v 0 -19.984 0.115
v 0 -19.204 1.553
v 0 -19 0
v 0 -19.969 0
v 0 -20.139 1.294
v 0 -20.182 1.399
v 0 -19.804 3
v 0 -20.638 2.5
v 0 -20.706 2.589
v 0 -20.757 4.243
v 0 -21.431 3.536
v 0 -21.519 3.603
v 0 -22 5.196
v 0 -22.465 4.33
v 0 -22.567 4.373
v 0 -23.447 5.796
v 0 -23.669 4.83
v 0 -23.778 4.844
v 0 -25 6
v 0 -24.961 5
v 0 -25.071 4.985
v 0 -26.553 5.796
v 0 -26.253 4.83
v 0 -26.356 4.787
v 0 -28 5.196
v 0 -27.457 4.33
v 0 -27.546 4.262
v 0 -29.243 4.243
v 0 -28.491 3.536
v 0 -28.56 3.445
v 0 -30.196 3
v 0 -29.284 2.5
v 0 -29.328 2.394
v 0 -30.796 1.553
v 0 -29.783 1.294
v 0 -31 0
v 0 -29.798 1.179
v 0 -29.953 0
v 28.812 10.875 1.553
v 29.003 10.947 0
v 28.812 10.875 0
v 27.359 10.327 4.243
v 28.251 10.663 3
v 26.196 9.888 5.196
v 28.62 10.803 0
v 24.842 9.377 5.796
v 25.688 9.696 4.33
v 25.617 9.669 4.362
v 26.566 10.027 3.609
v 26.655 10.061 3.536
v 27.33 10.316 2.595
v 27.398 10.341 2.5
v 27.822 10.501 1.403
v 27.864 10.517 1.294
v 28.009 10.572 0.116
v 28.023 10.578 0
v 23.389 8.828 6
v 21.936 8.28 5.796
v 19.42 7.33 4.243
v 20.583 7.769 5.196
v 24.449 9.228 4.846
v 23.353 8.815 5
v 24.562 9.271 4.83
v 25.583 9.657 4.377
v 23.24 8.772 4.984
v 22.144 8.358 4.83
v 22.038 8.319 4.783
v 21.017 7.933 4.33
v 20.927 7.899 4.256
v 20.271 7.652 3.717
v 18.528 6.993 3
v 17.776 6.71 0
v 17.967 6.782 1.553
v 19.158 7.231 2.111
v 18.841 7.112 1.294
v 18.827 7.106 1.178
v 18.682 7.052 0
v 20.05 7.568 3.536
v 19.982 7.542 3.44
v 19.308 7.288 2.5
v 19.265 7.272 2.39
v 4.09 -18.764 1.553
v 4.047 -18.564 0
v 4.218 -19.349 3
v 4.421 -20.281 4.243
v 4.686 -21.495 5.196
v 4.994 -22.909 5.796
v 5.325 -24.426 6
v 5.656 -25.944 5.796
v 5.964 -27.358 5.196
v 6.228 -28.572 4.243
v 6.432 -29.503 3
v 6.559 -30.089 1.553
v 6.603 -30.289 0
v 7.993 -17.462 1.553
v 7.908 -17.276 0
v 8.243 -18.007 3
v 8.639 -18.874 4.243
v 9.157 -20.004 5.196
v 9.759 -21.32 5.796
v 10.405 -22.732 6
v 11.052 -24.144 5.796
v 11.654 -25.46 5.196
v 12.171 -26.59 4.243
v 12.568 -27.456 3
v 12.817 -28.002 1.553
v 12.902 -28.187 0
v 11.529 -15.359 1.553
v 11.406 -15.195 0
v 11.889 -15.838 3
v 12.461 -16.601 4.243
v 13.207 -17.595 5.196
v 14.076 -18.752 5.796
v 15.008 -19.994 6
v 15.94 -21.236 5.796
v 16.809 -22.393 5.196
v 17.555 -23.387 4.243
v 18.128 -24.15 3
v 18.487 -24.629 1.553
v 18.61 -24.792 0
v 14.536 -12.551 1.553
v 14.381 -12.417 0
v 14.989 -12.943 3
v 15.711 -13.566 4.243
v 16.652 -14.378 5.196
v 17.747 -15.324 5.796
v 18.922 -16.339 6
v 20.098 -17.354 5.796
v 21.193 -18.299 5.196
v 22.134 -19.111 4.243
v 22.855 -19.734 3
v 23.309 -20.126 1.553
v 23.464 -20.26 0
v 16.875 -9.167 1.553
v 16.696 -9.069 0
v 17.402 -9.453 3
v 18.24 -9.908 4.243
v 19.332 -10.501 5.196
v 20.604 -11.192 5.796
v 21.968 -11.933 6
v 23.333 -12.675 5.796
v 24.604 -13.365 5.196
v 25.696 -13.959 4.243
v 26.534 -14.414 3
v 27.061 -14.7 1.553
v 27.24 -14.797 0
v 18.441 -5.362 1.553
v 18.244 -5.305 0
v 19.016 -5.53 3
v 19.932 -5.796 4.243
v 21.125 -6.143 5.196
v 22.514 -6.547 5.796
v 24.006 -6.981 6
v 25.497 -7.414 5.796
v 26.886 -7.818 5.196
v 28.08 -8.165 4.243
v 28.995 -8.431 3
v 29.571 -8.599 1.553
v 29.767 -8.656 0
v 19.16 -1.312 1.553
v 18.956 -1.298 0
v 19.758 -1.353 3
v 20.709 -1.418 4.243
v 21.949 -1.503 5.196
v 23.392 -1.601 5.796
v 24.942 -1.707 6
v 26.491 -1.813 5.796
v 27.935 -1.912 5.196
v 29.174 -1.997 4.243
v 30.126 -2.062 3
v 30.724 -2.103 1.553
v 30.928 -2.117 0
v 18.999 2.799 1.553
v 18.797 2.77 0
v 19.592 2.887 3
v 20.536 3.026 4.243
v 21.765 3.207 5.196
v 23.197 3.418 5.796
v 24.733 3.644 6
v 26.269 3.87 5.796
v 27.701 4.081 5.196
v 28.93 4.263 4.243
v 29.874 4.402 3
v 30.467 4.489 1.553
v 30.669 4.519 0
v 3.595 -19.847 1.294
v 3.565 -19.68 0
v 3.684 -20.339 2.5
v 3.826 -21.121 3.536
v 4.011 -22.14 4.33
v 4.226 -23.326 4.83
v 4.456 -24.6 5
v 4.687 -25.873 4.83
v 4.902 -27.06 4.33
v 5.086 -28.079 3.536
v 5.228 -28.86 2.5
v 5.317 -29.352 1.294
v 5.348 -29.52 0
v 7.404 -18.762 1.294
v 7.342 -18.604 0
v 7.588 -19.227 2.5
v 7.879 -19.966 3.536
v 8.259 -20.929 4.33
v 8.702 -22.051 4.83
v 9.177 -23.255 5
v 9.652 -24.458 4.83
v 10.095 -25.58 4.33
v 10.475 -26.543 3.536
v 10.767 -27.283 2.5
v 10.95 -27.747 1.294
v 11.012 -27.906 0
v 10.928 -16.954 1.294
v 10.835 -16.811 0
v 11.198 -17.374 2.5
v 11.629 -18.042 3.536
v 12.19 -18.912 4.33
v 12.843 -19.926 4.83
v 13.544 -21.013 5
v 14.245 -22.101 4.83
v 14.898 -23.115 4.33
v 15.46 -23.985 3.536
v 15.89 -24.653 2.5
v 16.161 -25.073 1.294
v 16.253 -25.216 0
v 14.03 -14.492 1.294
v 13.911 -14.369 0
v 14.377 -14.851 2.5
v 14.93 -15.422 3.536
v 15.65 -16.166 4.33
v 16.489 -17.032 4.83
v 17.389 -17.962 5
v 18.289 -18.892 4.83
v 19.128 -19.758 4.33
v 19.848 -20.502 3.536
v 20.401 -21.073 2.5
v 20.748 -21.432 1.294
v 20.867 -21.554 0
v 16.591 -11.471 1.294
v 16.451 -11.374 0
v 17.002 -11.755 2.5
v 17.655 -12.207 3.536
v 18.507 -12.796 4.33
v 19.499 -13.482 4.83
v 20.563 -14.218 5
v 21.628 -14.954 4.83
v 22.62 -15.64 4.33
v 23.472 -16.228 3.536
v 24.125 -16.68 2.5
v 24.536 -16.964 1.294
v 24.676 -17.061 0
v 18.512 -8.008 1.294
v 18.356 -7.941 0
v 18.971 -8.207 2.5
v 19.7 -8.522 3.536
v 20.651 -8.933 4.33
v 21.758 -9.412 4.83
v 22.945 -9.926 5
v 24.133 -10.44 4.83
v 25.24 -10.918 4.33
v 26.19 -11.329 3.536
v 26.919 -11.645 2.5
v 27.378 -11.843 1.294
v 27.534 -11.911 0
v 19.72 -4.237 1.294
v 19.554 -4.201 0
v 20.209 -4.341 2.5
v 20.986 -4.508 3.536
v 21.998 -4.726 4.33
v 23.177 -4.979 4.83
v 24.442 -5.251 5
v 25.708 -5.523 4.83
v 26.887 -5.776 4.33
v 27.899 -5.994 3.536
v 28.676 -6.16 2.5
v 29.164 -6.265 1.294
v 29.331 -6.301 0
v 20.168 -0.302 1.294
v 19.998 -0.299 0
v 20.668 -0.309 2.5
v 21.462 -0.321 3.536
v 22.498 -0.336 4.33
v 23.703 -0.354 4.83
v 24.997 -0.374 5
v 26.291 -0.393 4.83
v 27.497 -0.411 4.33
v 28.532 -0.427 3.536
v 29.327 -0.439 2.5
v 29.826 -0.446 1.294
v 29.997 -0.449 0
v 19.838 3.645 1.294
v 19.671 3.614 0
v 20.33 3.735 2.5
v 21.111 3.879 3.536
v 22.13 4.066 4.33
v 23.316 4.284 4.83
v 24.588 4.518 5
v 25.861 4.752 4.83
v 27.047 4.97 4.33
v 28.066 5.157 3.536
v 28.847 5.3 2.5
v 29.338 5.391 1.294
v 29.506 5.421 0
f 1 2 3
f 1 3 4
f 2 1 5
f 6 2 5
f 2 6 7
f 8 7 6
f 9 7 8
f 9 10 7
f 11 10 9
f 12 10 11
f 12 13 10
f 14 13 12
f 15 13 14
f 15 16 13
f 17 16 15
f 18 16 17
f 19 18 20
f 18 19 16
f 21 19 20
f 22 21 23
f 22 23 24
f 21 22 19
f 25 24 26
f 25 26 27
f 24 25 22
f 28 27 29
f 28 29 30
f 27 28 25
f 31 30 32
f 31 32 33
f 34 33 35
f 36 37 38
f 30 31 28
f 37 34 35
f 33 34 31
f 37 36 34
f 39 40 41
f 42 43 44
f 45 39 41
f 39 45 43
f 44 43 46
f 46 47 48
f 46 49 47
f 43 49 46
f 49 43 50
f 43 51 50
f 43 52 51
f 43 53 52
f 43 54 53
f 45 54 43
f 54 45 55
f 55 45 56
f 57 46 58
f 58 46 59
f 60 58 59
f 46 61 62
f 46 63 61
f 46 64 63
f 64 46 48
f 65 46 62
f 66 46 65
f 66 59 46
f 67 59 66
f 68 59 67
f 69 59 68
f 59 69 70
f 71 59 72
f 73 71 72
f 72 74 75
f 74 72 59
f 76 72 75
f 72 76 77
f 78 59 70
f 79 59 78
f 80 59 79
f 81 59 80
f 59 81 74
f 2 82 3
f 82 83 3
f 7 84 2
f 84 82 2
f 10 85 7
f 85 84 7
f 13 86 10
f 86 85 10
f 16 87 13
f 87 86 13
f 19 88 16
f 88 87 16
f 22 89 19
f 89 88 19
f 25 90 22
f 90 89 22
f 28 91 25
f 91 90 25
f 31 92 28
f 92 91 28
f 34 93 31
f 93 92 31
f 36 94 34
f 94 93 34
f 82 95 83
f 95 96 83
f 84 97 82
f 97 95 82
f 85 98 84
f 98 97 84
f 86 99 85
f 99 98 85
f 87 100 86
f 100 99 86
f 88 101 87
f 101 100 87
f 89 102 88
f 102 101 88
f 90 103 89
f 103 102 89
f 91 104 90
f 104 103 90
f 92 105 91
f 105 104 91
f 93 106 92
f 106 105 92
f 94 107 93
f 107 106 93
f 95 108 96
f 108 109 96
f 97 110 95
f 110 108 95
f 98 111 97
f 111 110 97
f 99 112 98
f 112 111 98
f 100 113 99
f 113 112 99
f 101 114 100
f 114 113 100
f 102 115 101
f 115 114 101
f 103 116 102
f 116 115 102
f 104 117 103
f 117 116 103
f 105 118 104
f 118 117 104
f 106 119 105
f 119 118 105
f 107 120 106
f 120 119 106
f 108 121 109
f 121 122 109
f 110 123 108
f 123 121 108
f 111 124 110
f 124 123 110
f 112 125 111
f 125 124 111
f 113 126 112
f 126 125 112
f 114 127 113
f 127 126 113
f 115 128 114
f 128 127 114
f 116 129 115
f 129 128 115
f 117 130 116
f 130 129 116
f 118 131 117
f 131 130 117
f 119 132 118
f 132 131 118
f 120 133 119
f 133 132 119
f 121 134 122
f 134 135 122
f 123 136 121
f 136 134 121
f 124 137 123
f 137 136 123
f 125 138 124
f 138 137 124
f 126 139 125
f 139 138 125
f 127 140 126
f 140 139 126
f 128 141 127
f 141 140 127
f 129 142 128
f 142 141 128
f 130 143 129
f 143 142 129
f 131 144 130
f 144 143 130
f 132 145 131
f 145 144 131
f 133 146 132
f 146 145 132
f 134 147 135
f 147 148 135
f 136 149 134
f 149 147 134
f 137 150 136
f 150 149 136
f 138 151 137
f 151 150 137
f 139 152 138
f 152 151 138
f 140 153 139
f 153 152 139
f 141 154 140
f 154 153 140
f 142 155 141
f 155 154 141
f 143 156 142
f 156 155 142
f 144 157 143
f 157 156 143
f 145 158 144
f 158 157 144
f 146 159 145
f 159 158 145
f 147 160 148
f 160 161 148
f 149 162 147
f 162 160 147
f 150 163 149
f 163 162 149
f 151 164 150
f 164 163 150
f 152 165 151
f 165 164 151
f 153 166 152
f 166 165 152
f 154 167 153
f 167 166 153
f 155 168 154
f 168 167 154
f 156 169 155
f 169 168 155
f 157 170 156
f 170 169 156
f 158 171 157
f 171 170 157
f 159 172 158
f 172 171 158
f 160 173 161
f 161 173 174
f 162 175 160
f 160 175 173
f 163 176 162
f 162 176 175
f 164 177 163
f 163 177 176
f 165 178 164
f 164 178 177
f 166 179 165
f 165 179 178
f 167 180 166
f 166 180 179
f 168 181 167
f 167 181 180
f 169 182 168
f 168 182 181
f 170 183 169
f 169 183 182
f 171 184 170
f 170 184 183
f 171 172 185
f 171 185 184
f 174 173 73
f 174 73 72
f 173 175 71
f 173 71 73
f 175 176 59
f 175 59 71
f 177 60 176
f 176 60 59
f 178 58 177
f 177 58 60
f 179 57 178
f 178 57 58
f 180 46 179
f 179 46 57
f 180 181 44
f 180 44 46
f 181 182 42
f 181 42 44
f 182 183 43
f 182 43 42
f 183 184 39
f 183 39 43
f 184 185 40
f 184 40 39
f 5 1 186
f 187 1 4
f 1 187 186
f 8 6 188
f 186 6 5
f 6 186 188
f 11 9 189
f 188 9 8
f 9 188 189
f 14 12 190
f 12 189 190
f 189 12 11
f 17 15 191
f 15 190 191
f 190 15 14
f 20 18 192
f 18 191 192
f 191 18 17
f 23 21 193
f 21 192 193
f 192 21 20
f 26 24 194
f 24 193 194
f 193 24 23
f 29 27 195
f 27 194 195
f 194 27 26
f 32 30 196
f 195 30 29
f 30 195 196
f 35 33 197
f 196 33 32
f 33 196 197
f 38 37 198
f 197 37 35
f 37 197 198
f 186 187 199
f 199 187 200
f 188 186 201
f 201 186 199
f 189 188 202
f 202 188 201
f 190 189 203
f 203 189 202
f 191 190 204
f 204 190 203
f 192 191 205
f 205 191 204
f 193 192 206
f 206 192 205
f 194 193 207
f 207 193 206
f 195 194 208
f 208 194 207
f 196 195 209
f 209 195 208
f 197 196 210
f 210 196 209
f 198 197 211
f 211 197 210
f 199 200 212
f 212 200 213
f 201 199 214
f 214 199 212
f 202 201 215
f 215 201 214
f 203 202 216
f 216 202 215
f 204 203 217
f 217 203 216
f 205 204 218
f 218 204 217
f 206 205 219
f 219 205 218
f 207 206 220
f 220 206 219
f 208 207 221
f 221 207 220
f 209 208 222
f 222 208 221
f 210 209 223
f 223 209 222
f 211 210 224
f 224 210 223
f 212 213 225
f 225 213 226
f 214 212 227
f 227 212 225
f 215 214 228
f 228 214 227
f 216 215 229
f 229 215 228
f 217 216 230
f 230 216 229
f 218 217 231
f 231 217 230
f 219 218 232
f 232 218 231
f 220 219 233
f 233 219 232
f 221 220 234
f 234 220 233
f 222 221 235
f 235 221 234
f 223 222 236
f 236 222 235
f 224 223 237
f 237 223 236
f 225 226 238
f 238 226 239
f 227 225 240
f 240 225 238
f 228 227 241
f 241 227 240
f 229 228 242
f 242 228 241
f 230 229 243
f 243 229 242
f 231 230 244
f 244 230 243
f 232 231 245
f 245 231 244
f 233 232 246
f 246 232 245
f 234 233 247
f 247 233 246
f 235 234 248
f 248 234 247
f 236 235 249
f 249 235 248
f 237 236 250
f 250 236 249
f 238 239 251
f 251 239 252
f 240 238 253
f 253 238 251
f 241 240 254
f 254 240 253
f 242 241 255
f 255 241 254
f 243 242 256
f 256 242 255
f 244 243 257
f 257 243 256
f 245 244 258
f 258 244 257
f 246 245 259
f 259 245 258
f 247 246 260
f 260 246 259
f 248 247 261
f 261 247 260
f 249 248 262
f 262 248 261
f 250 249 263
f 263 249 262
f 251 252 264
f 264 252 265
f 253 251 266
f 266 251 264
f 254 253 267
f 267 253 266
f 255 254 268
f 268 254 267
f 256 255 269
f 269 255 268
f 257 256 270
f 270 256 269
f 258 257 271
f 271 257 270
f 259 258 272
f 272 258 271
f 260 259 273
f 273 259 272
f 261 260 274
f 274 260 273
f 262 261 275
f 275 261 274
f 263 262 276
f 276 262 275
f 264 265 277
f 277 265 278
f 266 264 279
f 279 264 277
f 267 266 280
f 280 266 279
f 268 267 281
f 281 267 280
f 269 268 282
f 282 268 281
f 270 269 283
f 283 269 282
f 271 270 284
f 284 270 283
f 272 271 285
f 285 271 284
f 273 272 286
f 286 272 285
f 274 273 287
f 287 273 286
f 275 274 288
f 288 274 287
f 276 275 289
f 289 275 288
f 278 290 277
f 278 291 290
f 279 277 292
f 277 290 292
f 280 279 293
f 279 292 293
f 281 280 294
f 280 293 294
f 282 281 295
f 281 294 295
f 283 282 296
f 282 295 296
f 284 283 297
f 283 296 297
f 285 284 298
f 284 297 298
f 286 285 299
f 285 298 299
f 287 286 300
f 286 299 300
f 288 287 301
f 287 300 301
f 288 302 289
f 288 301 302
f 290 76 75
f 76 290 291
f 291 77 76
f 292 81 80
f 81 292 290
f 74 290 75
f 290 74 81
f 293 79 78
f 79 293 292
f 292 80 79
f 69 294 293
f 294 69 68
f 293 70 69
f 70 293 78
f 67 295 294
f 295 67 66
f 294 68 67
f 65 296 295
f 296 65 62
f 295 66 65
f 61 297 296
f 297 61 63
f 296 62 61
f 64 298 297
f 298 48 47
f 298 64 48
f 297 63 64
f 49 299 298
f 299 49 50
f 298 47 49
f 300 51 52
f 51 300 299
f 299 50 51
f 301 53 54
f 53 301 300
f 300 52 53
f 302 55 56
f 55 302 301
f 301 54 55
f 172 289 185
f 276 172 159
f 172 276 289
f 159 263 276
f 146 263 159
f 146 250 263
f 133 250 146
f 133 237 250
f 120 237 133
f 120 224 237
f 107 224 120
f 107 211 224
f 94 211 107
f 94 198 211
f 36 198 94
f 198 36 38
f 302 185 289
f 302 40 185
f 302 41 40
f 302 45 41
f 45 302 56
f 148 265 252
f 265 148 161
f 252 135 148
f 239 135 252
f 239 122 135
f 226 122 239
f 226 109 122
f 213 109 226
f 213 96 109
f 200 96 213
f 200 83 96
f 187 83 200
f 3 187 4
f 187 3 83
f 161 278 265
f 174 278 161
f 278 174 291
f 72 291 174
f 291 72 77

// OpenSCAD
// file: ../build_environments.scad
// build_environments.scad: modules to build level sections
//

module pool(diameter=10.0, wall_height=2.0, step_width=3.0, connections=[])
{
    difference() {
        union() {
        difference() {
            cylinder(h=0.5,r1=diameter+step_width,r2=diameter+step_width,$fn=48);
            translate([0,0,-0.1])
                cylinder(h=0.7,r1=diameter,r2=diameter,$fn=48);
        }
        difference() {
            cylinder(h=wall_height,r1=diameter+step_width+1.0,r2=diameter+step_width+1.0,$fn=48);
            translate([0,0,-0.1])
                cylinder(h=wall_height+0.2,r1=diameter+step_width,r2=diameter+step_width,$fn=48);
        }
        }
    
        for (c = connections)
        {
            rotate([0,90,0]) {
                angle = atan2(c[1],c[0]);
                rotate([-angle,0,0]) {
                    cylinder(h=diameter+5.0,r1=c[2],r2=c[2],$fn=48);
                }
            }
        }
    }
}

module straight(length=10.0, width=2.0, dy1=0.0, dy2=0.0, dz=0.0)
{
    dims = [0, 0, 0, 0, 0, (dz/length)];
    matrix = [
        [ 1, dims[0], dims[1], 0 ],
        [ dims[2], 1, dims[4], 0 ],
        [ dims[5], dims[3], 1, 0 ],
        [ 0, 0, 0, 1 ]
    ];
    multmatrix(matrix)
    difference() {
        translate([dy1,0,0])
        union() {
            rotate([0,90,0]) {
                difference() {
                    cylinder(h=(length-dy1-dy2),r1=width+1.0,r2=width+1.0,$fn=24);
                    translate([0,0,-0.1])
                        cylinder(h=(length-dy1-dy2+0.2),r1=width,r2=width,$fn=24);
                }
                difference() {
                    cylinder(h=1.0,r1=width+2.0,r2=width+2.0,$fn=24);
                    translate([0,0,-0.1])
                        cylinder(h=1.2,r1=width,r2=width,$fn=24);
                }
                translate([0,0,(length-dy1-dy2)-1.0]) {
                    difference() {
                        cylinder(h=1.0,r1=width+2.0,r2=width+2.0,$fn=24);
                        translate([0,0,-0.1])
                            cylinder(h=1.2,r1=width,r2=width,$fn=24);
                    }
                }
            }
        }
        translate([0,0,-(2*width+4.0)/2])
            cube([3*length,3*length,2*width+4.0],center=true);
    }
}

module curve(p0=[0,0], center=[0,0], dir=1, angle=0.0, width=2.0)
{
    radius = sqrt((p0[0]-center[0])*(p0[0]-center[0]) + (p0[1]-center[1])*(p0[1]-center[1]));
    if (dir == 0) {
        difference() {
            rotate([0,0,-90])
            difference() {
                rotate_extrude(angle = angle, convexity = 10, $fn=32)
                    translate([radius, 0, 0])
                        circle(r = width+1.0,$fn=24);
                rotate([0,0,-1.0])
                    rotate_extrude(angle = angle+2.0, convexity = 10, $fn=32)
                        translate([radius, 0, 0])
                            circle(r = width,$fn=24);
            }
            translate([0,0,-(2*width+4.0)/2])
                cube([5*radius,5*radius,2*width+4.0],center=true);
        }
    }
    else {
        difference() {
            rotate([0,0,90])
            difference() {
                rotate_extrude(angle = -angle, convexity = 10, $fn=32)
                    translate([radius, 0, 0])
                        circle(r = width+1.0,$fn=24);
                rotate([0,0,1.0])
                    rotate_extrude(angle = -angle-2.0, convexity = 10, $fn=32)
                        translate([radius, 0, 0])
                            circle(r = width,$fn=24);
            }
            translate([0,0,-(2*width+4.0)/2])
                cube([5*radius,5*radius,2*width+4.0],center=true);
        }
    }

}

// test pool
//pool(diameter=12.0000, wall_height=3.0000, step_width=3.0000, connections=[[0.0000,-26.0000,2.0000], [23.6074,0.0000,2.0000]]);

// test straight, slope
//straight(length=26.0000, width=2.0000, dy1=11.8322, dy2=6.7082, dz=0.0000);
//straight(length=29.1549, width=12.0000, dy1=0.0000, dy2=0.0000, dz=-15.0000);

// test curve
//curve(p0=[23.6074, 0.0000], center=[23.6074, 5.0000], dir=0, angle=60.1011, width=2.0000);
//curve(p0=[33.6426, 12.4219], center=[37.9771, 9.9295], dir=1, angle=120.4627, width=2.0000);
// main file
use <../build_environments.scad>;
curve(p0=[47.6747, -239.7871], center=[22.7713, -237.5913], dir=0, angle=110.6792, width=5.0000);
